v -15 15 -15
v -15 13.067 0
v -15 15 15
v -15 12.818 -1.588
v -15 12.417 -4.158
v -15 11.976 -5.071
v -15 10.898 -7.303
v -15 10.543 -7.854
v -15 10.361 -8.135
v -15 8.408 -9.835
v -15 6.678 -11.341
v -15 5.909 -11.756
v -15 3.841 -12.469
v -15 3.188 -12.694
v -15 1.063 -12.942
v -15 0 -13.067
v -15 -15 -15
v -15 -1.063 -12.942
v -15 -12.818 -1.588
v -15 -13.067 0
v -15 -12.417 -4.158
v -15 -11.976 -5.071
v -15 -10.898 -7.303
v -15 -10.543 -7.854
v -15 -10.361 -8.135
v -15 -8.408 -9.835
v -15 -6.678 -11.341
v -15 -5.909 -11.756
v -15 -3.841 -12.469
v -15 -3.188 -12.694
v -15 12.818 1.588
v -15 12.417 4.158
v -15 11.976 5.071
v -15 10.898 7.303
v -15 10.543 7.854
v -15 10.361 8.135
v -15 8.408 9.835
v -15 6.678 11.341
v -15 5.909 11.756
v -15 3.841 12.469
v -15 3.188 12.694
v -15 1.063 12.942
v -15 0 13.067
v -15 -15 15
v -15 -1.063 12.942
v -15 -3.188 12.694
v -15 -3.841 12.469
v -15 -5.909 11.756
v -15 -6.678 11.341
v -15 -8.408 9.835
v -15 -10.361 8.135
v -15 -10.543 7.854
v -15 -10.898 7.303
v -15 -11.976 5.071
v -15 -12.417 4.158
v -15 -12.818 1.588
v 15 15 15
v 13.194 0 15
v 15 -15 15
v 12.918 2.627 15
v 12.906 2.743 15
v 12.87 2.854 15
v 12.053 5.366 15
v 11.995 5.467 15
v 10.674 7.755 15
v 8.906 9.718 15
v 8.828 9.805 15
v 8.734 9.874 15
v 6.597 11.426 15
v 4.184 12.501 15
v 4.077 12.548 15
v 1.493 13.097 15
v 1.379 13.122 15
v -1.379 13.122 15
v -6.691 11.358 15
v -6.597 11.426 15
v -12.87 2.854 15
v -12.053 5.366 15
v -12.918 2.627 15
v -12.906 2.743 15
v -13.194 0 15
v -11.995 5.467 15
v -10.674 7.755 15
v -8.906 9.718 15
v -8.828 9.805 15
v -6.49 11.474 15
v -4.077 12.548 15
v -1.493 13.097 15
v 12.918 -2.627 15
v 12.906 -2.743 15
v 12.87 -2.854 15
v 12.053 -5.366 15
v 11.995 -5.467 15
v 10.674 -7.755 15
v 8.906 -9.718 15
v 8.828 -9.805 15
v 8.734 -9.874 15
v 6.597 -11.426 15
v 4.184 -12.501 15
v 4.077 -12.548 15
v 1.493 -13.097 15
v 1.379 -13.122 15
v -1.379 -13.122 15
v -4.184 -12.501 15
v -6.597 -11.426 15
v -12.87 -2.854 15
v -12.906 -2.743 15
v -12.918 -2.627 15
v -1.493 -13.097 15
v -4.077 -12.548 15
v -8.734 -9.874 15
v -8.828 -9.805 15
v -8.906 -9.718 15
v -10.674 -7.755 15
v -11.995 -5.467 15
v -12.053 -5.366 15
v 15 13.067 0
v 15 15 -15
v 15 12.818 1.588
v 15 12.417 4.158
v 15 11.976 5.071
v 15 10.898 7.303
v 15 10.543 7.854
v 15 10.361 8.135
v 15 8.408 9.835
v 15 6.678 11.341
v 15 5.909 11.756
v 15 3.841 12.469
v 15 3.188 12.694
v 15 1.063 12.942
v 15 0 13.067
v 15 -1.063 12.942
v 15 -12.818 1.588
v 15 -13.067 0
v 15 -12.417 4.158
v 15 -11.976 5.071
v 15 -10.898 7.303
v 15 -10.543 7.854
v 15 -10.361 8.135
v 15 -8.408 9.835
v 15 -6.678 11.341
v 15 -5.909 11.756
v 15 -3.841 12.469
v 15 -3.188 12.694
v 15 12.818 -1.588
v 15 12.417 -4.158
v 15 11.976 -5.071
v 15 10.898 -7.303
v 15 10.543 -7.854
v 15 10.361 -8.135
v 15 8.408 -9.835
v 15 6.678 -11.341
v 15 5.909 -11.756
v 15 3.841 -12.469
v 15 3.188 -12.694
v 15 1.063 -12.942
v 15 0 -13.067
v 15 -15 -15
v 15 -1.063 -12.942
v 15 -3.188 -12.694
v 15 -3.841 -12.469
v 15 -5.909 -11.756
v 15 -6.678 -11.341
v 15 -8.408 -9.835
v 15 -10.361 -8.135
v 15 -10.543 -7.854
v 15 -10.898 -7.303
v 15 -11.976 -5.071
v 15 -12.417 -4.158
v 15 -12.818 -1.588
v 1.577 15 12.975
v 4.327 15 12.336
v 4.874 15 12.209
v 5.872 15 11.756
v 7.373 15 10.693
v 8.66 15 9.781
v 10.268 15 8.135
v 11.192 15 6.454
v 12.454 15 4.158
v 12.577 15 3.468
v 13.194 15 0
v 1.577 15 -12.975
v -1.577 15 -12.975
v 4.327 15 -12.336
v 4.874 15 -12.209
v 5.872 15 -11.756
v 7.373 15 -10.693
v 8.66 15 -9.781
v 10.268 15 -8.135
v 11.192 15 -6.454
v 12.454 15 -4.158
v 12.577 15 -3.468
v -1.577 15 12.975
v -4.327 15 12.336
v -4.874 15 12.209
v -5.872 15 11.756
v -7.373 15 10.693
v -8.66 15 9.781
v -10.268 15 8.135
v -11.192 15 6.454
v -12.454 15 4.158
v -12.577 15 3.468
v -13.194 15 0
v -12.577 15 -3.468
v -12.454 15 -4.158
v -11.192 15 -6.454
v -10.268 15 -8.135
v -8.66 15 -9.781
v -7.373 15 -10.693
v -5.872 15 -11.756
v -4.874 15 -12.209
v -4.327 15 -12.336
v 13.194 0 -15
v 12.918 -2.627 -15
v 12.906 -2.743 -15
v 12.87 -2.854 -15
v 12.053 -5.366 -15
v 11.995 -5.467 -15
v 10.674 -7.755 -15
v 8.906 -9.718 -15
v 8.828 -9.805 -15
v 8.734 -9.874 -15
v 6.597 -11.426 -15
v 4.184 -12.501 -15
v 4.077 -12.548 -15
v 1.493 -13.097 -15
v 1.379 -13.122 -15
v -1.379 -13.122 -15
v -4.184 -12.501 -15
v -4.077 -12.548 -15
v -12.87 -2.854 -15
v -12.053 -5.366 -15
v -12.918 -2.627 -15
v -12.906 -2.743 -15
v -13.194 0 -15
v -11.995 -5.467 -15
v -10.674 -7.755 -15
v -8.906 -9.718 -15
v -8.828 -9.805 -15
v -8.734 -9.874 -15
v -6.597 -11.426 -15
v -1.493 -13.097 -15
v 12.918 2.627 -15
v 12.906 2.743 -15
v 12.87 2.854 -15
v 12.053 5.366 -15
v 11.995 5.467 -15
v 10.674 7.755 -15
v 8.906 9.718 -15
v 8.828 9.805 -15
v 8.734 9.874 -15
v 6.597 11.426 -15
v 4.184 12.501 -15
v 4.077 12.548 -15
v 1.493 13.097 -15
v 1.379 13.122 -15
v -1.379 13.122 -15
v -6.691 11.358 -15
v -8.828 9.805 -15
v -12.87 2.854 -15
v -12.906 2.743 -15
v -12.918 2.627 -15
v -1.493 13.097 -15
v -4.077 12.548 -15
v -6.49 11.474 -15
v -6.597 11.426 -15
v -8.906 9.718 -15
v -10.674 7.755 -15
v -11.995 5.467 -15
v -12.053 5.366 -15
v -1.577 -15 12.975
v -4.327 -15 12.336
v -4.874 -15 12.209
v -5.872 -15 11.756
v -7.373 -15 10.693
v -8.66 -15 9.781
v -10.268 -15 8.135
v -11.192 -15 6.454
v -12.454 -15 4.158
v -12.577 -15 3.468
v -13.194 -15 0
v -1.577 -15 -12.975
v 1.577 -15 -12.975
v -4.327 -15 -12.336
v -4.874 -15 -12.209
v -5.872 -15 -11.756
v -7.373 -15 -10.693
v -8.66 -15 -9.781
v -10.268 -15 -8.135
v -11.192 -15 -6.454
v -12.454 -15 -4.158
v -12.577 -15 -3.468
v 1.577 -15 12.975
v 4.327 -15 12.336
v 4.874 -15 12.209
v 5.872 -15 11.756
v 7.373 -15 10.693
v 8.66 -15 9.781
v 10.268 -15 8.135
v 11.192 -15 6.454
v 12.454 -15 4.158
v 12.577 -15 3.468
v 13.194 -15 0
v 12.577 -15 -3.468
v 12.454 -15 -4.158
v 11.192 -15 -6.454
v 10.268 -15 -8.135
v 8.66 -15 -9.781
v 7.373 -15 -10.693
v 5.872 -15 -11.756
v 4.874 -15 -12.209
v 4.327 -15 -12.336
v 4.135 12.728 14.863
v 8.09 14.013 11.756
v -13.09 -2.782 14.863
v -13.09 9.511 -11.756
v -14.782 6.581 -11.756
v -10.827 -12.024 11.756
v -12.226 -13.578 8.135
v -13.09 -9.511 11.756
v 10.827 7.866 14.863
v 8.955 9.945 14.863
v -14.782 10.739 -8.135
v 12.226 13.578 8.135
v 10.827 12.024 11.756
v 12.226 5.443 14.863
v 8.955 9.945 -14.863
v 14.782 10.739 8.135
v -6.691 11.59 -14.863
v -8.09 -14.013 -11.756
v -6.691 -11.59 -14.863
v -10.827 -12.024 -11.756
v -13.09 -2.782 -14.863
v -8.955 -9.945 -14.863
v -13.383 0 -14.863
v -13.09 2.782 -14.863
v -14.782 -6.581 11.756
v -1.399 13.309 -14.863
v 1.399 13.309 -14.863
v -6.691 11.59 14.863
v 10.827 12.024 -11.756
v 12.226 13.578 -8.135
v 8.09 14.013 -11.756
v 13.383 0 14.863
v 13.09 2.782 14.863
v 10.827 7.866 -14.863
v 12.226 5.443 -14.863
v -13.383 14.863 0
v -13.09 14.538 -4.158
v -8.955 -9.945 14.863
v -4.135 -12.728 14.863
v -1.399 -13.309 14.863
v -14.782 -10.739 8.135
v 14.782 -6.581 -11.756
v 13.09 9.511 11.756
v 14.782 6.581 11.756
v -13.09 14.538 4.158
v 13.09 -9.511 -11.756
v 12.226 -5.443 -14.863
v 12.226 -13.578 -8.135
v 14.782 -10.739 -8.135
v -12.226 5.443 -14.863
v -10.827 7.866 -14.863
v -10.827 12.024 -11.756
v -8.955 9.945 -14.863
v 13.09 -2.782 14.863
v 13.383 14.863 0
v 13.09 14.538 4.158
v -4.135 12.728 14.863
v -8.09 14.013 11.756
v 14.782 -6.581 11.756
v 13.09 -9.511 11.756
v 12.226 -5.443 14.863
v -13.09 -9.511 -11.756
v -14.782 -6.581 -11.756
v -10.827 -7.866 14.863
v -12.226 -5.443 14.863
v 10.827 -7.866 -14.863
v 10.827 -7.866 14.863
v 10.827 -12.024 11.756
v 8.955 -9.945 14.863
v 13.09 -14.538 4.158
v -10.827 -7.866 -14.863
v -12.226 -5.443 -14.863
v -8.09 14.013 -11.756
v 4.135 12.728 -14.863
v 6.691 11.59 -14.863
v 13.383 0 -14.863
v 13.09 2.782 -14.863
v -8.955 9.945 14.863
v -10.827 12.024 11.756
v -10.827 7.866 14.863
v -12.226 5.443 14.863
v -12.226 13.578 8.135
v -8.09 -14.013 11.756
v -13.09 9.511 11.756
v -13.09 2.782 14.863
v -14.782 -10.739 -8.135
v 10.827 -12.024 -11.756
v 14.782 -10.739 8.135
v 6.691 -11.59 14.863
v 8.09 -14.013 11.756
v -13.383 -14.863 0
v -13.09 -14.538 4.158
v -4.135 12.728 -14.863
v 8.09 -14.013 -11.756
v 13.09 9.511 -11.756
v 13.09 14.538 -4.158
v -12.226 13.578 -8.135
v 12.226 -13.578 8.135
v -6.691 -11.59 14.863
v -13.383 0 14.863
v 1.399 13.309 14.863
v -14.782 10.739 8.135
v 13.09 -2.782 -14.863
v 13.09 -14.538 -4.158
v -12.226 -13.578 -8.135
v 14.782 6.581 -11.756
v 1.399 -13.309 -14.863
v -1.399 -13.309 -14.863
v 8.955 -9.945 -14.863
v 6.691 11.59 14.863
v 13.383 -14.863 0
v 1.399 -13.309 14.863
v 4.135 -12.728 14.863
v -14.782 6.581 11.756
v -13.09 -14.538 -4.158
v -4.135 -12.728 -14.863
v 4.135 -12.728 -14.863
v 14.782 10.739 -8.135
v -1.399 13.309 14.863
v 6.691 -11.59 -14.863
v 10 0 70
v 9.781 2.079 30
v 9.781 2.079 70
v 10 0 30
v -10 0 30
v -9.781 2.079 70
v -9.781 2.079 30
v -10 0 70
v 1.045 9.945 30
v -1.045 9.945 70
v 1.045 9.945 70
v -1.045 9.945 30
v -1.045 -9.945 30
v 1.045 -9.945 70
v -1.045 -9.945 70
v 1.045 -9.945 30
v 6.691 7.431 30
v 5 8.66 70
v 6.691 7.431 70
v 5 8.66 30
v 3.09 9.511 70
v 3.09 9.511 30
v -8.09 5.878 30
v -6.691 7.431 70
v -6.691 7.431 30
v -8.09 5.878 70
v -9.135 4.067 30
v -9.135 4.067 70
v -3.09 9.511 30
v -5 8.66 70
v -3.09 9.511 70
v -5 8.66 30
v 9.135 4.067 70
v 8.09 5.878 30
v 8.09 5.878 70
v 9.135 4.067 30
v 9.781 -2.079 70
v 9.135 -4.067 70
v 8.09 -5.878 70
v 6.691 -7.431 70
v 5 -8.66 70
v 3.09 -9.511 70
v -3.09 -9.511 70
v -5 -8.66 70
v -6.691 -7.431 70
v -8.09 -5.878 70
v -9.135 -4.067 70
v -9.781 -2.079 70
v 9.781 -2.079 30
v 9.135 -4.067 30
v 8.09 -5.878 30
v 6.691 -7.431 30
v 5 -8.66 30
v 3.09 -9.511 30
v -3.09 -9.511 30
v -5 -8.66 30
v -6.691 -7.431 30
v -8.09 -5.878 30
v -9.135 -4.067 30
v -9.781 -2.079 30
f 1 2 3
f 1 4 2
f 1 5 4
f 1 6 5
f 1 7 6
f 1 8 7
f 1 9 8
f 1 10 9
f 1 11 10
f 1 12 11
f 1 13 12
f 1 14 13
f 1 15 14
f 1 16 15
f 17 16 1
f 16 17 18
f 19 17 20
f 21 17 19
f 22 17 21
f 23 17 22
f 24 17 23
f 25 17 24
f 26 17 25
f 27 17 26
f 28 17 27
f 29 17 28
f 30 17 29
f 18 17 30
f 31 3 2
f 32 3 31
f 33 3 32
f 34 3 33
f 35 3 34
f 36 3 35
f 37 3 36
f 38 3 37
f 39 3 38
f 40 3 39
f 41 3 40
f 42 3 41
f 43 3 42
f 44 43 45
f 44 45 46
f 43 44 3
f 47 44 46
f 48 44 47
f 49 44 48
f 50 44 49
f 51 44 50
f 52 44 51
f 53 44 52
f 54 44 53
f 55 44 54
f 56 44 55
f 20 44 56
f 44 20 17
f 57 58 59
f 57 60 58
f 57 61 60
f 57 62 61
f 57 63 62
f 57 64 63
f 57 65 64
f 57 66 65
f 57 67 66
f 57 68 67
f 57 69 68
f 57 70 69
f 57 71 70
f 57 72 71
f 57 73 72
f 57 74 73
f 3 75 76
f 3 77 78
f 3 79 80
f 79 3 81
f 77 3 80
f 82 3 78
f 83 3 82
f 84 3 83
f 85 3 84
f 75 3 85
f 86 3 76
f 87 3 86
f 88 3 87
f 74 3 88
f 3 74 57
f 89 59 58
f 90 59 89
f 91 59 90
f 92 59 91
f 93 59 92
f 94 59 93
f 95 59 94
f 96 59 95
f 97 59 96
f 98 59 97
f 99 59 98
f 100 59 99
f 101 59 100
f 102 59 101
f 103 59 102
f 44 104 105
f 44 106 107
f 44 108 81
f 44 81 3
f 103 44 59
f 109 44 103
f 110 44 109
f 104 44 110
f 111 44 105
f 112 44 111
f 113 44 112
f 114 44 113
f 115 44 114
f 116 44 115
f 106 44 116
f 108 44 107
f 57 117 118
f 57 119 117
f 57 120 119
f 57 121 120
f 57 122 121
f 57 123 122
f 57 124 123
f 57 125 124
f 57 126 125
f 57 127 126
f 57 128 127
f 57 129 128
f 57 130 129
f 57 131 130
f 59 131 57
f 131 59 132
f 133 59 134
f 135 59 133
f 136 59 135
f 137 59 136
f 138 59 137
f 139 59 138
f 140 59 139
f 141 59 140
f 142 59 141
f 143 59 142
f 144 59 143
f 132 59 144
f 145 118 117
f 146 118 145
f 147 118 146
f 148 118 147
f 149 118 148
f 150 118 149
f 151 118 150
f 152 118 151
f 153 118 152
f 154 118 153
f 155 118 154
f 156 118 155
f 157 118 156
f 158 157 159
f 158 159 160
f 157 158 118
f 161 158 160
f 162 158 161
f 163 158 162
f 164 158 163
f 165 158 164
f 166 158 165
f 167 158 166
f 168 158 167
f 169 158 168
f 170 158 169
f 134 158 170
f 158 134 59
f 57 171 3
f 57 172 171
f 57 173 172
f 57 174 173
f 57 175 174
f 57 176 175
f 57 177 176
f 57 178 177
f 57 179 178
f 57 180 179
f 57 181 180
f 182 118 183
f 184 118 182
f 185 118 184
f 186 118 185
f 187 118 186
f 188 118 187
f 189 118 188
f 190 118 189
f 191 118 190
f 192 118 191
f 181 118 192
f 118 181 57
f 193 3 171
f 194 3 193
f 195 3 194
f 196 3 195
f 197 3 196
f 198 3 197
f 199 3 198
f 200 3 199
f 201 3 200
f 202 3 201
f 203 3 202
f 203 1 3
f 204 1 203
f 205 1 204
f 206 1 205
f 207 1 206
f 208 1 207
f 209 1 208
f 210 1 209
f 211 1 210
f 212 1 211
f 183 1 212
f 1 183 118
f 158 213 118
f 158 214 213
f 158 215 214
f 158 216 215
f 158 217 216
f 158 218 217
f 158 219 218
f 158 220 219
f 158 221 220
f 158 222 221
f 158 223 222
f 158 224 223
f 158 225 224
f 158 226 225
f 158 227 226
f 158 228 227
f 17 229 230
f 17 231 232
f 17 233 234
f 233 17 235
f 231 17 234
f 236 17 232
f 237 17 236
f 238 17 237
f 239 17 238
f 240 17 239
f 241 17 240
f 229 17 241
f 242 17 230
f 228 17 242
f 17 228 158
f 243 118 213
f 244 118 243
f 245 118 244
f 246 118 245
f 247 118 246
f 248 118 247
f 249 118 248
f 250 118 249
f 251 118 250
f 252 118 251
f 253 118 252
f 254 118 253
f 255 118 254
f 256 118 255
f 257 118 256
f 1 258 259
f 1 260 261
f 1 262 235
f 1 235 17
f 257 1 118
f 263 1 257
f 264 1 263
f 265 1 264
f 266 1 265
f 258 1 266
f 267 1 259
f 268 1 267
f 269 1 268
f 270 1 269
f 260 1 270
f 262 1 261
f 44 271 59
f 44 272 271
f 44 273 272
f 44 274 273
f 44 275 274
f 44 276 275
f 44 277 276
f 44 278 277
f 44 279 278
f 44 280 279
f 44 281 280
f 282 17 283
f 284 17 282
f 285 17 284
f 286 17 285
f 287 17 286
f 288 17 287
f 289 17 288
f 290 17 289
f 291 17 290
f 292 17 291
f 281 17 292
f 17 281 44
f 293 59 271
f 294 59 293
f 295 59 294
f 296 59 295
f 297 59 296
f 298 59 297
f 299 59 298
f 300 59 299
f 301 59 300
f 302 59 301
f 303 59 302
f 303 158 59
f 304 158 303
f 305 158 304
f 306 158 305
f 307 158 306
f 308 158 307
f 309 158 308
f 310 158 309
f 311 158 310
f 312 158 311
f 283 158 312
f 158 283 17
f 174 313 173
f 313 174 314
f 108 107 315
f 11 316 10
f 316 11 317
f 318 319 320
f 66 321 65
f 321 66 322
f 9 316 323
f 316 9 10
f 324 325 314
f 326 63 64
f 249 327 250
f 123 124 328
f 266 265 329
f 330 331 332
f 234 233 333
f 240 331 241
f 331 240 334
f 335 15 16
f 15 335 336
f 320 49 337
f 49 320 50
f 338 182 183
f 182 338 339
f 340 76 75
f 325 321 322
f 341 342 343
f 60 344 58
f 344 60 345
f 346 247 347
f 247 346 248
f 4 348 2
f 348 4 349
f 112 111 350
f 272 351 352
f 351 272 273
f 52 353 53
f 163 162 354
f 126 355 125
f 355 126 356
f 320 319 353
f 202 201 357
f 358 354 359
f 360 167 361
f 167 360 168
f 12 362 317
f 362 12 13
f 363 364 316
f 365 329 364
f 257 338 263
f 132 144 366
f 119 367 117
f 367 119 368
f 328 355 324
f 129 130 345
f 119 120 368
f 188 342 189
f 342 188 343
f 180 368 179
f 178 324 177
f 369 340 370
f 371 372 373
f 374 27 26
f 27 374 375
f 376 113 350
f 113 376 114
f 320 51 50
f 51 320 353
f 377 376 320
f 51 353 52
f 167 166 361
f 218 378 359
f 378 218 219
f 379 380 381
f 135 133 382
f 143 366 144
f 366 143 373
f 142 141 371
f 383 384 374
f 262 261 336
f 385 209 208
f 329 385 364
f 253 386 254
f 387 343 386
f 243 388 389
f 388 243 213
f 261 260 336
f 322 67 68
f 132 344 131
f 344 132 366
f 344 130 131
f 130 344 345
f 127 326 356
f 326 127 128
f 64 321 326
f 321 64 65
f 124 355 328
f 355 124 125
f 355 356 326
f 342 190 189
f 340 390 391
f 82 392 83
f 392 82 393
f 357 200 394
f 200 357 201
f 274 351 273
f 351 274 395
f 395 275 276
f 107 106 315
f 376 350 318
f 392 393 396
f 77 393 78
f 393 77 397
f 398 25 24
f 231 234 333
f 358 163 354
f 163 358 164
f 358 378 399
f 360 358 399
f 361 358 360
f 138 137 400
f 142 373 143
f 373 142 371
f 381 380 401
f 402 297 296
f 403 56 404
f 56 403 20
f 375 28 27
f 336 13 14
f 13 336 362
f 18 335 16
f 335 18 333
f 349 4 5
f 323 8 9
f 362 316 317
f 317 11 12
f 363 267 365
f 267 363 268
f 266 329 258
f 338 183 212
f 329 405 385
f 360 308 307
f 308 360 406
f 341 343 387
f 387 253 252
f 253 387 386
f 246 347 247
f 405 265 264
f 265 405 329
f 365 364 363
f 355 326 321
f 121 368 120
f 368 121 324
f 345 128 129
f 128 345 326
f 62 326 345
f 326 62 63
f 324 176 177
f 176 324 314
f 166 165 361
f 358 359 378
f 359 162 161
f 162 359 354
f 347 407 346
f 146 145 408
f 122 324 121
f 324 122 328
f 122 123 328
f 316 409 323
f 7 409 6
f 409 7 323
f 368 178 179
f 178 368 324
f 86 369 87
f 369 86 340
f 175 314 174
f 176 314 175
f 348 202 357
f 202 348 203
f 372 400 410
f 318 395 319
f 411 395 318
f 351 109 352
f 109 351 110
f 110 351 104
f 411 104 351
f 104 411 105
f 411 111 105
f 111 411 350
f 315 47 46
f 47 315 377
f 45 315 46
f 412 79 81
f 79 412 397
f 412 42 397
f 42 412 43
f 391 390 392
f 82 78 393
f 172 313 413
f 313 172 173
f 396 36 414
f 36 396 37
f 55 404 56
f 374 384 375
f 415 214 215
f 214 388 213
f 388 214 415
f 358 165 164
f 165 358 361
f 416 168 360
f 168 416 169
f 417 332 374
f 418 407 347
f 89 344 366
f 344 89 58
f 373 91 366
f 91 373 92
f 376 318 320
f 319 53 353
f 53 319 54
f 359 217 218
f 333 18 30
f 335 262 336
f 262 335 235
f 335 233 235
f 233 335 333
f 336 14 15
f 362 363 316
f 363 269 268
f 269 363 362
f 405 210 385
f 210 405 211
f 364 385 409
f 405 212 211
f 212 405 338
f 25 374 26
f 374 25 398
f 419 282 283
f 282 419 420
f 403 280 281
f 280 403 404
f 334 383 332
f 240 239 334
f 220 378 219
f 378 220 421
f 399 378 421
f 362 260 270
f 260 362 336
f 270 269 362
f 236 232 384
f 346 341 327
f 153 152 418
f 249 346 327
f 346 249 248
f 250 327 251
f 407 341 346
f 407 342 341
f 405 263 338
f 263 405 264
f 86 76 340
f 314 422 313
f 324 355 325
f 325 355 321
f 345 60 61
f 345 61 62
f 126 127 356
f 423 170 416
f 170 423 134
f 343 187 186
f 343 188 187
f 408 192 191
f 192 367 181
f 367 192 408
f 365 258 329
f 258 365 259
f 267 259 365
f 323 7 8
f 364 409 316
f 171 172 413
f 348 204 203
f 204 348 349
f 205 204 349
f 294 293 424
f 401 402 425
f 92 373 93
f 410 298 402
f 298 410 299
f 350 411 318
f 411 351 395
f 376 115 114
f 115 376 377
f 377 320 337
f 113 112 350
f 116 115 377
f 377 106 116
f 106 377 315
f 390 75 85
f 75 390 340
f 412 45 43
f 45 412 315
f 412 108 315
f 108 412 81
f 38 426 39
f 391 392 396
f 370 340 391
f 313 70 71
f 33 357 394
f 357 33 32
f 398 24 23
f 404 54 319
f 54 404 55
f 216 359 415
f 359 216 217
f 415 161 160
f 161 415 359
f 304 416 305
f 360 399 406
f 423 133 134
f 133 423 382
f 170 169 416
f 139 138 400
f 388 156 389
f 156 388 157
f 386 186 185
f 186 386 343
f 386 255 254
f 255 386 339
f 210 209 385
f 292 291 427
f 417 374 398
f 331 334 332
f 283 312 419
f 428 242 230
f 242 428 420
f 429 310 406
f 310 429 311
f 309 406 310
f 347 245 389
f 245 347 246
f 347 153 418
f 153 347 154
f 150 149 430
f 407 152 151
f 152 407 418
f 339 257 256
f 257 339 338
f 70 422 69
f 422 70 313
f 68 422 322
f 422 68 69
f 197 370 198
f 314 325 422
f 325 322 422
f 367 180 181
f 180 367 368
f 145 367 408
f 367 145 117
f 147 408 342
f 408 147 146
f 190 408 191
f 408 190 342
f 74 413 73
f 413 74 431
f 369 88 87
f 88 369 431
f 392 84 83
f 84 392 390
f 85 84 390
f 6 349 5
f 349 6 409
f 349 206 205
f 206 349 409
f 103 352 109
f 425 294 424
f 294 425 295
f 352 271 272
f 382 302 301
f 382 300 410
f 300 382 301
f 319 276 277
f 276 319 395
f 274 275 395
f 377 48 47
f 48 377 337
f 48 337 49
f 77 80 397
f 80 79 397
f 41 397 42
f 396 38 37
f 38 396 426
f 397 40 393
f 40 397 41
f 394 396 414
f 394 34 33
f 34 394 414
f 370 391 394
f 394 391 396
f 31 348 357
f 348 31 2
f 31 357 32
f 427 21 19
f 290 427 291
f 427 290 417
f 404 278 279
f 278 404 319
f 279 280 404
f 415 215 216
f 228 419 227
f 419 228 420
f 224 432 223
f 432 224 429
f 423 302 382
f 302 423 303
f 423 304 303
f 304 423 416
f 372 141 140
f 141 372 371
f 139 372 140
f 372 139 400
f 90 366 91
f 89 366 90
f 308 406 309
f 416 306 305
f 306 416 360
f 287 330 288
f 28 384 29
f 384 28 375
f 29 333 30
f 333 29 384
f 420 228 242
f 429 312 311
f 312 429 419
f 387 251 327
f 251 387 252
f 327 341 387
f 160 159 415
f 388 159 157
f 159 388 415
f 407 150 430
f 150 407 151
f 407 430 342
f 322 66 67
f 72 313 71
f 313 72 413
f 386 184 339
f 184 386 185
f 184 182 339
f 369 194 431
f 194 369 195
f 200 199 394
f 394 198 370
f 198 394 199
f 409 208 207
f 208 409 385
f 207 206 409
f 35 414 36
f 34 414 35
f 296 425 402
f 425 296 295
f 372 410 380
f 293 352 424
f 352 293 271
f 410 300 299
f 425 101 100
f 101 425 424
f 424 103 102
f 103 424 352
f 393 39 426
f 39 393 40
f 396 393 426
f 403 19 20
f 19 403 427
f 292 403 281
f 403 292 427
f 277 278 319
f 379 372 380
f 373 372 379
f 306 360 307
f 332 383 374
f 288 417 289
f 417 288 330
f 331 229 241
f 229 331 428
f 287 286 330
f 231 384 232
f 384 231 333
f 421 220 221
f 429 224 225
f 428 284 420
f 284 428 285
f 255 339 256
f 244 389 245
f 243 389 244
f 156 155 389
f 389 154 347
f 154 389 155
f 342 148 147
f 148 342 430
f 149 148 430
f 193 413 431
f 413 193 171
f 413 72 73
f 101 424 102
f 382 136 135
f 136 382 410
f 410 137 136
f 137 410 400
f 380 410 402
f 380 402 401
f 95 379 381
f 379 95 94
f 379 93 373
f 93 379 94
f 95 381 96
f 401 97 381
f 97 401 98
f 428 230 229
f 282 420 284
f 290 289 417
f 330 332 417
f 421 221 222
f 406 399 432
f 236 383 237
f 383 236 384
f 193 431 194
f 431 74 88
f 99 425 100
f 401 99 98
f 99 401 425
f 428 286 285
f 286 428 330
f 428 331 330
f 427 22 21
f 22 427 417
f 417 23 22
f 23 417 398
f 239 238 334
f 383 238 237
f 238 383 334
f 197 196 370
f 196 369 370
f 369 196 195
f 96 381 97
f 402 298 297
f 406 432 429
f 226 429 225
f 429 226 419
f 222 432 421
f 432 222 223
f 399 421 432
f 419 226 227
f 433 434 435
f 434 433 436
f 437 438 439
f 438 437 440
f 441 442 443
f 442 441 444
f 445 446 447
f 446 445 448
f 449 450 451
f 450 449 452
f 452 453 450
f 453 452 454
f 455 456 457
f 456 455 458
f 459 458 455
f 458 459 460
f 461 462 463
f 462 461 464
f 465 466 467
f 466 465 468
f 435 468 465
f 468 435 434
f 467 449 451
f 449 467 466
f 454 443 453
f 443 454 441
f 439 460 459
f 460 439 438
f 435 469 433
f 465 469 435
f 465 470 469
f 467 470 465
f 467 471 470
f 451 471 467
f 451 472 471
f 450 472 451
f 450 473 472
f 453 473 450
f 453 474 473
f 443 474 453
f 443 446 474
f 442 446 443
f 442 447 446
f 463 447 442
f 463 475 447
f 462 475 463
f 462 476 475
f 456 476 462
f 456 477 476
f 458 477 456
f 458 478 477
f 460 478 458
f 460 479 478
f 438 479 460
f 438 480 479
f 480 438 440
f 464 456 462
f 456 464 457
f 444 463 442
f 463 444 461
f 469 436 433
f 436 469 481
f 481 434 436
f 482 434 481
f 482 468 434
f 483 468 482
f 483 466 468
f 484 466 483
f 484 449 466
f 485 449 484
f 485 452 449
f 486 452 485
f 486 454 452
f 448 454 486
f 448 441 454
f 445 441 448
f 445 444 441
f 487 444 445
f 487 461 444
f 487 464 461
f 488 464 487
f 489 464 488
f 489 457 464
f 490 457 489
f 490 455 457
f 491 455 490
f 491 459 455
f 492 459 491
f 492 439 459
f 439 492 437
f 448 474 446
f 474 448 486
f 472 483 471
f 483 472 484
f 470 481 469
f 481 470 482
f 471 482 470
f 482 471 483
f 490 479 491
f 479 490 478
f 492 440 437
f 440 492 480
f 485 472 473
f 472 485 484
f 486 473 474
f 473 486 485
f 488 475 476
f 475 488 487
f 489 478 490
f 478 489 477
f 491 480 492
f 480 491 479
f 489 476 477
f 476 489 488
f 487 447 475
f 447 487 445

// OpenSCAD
union() {
  difference() {
    cube(size=30, center=true);
    sphere(r=20);
  }
  translate(v=[0, 0, 30]) {
    cylinder(h=40, r=10);
  }
}
